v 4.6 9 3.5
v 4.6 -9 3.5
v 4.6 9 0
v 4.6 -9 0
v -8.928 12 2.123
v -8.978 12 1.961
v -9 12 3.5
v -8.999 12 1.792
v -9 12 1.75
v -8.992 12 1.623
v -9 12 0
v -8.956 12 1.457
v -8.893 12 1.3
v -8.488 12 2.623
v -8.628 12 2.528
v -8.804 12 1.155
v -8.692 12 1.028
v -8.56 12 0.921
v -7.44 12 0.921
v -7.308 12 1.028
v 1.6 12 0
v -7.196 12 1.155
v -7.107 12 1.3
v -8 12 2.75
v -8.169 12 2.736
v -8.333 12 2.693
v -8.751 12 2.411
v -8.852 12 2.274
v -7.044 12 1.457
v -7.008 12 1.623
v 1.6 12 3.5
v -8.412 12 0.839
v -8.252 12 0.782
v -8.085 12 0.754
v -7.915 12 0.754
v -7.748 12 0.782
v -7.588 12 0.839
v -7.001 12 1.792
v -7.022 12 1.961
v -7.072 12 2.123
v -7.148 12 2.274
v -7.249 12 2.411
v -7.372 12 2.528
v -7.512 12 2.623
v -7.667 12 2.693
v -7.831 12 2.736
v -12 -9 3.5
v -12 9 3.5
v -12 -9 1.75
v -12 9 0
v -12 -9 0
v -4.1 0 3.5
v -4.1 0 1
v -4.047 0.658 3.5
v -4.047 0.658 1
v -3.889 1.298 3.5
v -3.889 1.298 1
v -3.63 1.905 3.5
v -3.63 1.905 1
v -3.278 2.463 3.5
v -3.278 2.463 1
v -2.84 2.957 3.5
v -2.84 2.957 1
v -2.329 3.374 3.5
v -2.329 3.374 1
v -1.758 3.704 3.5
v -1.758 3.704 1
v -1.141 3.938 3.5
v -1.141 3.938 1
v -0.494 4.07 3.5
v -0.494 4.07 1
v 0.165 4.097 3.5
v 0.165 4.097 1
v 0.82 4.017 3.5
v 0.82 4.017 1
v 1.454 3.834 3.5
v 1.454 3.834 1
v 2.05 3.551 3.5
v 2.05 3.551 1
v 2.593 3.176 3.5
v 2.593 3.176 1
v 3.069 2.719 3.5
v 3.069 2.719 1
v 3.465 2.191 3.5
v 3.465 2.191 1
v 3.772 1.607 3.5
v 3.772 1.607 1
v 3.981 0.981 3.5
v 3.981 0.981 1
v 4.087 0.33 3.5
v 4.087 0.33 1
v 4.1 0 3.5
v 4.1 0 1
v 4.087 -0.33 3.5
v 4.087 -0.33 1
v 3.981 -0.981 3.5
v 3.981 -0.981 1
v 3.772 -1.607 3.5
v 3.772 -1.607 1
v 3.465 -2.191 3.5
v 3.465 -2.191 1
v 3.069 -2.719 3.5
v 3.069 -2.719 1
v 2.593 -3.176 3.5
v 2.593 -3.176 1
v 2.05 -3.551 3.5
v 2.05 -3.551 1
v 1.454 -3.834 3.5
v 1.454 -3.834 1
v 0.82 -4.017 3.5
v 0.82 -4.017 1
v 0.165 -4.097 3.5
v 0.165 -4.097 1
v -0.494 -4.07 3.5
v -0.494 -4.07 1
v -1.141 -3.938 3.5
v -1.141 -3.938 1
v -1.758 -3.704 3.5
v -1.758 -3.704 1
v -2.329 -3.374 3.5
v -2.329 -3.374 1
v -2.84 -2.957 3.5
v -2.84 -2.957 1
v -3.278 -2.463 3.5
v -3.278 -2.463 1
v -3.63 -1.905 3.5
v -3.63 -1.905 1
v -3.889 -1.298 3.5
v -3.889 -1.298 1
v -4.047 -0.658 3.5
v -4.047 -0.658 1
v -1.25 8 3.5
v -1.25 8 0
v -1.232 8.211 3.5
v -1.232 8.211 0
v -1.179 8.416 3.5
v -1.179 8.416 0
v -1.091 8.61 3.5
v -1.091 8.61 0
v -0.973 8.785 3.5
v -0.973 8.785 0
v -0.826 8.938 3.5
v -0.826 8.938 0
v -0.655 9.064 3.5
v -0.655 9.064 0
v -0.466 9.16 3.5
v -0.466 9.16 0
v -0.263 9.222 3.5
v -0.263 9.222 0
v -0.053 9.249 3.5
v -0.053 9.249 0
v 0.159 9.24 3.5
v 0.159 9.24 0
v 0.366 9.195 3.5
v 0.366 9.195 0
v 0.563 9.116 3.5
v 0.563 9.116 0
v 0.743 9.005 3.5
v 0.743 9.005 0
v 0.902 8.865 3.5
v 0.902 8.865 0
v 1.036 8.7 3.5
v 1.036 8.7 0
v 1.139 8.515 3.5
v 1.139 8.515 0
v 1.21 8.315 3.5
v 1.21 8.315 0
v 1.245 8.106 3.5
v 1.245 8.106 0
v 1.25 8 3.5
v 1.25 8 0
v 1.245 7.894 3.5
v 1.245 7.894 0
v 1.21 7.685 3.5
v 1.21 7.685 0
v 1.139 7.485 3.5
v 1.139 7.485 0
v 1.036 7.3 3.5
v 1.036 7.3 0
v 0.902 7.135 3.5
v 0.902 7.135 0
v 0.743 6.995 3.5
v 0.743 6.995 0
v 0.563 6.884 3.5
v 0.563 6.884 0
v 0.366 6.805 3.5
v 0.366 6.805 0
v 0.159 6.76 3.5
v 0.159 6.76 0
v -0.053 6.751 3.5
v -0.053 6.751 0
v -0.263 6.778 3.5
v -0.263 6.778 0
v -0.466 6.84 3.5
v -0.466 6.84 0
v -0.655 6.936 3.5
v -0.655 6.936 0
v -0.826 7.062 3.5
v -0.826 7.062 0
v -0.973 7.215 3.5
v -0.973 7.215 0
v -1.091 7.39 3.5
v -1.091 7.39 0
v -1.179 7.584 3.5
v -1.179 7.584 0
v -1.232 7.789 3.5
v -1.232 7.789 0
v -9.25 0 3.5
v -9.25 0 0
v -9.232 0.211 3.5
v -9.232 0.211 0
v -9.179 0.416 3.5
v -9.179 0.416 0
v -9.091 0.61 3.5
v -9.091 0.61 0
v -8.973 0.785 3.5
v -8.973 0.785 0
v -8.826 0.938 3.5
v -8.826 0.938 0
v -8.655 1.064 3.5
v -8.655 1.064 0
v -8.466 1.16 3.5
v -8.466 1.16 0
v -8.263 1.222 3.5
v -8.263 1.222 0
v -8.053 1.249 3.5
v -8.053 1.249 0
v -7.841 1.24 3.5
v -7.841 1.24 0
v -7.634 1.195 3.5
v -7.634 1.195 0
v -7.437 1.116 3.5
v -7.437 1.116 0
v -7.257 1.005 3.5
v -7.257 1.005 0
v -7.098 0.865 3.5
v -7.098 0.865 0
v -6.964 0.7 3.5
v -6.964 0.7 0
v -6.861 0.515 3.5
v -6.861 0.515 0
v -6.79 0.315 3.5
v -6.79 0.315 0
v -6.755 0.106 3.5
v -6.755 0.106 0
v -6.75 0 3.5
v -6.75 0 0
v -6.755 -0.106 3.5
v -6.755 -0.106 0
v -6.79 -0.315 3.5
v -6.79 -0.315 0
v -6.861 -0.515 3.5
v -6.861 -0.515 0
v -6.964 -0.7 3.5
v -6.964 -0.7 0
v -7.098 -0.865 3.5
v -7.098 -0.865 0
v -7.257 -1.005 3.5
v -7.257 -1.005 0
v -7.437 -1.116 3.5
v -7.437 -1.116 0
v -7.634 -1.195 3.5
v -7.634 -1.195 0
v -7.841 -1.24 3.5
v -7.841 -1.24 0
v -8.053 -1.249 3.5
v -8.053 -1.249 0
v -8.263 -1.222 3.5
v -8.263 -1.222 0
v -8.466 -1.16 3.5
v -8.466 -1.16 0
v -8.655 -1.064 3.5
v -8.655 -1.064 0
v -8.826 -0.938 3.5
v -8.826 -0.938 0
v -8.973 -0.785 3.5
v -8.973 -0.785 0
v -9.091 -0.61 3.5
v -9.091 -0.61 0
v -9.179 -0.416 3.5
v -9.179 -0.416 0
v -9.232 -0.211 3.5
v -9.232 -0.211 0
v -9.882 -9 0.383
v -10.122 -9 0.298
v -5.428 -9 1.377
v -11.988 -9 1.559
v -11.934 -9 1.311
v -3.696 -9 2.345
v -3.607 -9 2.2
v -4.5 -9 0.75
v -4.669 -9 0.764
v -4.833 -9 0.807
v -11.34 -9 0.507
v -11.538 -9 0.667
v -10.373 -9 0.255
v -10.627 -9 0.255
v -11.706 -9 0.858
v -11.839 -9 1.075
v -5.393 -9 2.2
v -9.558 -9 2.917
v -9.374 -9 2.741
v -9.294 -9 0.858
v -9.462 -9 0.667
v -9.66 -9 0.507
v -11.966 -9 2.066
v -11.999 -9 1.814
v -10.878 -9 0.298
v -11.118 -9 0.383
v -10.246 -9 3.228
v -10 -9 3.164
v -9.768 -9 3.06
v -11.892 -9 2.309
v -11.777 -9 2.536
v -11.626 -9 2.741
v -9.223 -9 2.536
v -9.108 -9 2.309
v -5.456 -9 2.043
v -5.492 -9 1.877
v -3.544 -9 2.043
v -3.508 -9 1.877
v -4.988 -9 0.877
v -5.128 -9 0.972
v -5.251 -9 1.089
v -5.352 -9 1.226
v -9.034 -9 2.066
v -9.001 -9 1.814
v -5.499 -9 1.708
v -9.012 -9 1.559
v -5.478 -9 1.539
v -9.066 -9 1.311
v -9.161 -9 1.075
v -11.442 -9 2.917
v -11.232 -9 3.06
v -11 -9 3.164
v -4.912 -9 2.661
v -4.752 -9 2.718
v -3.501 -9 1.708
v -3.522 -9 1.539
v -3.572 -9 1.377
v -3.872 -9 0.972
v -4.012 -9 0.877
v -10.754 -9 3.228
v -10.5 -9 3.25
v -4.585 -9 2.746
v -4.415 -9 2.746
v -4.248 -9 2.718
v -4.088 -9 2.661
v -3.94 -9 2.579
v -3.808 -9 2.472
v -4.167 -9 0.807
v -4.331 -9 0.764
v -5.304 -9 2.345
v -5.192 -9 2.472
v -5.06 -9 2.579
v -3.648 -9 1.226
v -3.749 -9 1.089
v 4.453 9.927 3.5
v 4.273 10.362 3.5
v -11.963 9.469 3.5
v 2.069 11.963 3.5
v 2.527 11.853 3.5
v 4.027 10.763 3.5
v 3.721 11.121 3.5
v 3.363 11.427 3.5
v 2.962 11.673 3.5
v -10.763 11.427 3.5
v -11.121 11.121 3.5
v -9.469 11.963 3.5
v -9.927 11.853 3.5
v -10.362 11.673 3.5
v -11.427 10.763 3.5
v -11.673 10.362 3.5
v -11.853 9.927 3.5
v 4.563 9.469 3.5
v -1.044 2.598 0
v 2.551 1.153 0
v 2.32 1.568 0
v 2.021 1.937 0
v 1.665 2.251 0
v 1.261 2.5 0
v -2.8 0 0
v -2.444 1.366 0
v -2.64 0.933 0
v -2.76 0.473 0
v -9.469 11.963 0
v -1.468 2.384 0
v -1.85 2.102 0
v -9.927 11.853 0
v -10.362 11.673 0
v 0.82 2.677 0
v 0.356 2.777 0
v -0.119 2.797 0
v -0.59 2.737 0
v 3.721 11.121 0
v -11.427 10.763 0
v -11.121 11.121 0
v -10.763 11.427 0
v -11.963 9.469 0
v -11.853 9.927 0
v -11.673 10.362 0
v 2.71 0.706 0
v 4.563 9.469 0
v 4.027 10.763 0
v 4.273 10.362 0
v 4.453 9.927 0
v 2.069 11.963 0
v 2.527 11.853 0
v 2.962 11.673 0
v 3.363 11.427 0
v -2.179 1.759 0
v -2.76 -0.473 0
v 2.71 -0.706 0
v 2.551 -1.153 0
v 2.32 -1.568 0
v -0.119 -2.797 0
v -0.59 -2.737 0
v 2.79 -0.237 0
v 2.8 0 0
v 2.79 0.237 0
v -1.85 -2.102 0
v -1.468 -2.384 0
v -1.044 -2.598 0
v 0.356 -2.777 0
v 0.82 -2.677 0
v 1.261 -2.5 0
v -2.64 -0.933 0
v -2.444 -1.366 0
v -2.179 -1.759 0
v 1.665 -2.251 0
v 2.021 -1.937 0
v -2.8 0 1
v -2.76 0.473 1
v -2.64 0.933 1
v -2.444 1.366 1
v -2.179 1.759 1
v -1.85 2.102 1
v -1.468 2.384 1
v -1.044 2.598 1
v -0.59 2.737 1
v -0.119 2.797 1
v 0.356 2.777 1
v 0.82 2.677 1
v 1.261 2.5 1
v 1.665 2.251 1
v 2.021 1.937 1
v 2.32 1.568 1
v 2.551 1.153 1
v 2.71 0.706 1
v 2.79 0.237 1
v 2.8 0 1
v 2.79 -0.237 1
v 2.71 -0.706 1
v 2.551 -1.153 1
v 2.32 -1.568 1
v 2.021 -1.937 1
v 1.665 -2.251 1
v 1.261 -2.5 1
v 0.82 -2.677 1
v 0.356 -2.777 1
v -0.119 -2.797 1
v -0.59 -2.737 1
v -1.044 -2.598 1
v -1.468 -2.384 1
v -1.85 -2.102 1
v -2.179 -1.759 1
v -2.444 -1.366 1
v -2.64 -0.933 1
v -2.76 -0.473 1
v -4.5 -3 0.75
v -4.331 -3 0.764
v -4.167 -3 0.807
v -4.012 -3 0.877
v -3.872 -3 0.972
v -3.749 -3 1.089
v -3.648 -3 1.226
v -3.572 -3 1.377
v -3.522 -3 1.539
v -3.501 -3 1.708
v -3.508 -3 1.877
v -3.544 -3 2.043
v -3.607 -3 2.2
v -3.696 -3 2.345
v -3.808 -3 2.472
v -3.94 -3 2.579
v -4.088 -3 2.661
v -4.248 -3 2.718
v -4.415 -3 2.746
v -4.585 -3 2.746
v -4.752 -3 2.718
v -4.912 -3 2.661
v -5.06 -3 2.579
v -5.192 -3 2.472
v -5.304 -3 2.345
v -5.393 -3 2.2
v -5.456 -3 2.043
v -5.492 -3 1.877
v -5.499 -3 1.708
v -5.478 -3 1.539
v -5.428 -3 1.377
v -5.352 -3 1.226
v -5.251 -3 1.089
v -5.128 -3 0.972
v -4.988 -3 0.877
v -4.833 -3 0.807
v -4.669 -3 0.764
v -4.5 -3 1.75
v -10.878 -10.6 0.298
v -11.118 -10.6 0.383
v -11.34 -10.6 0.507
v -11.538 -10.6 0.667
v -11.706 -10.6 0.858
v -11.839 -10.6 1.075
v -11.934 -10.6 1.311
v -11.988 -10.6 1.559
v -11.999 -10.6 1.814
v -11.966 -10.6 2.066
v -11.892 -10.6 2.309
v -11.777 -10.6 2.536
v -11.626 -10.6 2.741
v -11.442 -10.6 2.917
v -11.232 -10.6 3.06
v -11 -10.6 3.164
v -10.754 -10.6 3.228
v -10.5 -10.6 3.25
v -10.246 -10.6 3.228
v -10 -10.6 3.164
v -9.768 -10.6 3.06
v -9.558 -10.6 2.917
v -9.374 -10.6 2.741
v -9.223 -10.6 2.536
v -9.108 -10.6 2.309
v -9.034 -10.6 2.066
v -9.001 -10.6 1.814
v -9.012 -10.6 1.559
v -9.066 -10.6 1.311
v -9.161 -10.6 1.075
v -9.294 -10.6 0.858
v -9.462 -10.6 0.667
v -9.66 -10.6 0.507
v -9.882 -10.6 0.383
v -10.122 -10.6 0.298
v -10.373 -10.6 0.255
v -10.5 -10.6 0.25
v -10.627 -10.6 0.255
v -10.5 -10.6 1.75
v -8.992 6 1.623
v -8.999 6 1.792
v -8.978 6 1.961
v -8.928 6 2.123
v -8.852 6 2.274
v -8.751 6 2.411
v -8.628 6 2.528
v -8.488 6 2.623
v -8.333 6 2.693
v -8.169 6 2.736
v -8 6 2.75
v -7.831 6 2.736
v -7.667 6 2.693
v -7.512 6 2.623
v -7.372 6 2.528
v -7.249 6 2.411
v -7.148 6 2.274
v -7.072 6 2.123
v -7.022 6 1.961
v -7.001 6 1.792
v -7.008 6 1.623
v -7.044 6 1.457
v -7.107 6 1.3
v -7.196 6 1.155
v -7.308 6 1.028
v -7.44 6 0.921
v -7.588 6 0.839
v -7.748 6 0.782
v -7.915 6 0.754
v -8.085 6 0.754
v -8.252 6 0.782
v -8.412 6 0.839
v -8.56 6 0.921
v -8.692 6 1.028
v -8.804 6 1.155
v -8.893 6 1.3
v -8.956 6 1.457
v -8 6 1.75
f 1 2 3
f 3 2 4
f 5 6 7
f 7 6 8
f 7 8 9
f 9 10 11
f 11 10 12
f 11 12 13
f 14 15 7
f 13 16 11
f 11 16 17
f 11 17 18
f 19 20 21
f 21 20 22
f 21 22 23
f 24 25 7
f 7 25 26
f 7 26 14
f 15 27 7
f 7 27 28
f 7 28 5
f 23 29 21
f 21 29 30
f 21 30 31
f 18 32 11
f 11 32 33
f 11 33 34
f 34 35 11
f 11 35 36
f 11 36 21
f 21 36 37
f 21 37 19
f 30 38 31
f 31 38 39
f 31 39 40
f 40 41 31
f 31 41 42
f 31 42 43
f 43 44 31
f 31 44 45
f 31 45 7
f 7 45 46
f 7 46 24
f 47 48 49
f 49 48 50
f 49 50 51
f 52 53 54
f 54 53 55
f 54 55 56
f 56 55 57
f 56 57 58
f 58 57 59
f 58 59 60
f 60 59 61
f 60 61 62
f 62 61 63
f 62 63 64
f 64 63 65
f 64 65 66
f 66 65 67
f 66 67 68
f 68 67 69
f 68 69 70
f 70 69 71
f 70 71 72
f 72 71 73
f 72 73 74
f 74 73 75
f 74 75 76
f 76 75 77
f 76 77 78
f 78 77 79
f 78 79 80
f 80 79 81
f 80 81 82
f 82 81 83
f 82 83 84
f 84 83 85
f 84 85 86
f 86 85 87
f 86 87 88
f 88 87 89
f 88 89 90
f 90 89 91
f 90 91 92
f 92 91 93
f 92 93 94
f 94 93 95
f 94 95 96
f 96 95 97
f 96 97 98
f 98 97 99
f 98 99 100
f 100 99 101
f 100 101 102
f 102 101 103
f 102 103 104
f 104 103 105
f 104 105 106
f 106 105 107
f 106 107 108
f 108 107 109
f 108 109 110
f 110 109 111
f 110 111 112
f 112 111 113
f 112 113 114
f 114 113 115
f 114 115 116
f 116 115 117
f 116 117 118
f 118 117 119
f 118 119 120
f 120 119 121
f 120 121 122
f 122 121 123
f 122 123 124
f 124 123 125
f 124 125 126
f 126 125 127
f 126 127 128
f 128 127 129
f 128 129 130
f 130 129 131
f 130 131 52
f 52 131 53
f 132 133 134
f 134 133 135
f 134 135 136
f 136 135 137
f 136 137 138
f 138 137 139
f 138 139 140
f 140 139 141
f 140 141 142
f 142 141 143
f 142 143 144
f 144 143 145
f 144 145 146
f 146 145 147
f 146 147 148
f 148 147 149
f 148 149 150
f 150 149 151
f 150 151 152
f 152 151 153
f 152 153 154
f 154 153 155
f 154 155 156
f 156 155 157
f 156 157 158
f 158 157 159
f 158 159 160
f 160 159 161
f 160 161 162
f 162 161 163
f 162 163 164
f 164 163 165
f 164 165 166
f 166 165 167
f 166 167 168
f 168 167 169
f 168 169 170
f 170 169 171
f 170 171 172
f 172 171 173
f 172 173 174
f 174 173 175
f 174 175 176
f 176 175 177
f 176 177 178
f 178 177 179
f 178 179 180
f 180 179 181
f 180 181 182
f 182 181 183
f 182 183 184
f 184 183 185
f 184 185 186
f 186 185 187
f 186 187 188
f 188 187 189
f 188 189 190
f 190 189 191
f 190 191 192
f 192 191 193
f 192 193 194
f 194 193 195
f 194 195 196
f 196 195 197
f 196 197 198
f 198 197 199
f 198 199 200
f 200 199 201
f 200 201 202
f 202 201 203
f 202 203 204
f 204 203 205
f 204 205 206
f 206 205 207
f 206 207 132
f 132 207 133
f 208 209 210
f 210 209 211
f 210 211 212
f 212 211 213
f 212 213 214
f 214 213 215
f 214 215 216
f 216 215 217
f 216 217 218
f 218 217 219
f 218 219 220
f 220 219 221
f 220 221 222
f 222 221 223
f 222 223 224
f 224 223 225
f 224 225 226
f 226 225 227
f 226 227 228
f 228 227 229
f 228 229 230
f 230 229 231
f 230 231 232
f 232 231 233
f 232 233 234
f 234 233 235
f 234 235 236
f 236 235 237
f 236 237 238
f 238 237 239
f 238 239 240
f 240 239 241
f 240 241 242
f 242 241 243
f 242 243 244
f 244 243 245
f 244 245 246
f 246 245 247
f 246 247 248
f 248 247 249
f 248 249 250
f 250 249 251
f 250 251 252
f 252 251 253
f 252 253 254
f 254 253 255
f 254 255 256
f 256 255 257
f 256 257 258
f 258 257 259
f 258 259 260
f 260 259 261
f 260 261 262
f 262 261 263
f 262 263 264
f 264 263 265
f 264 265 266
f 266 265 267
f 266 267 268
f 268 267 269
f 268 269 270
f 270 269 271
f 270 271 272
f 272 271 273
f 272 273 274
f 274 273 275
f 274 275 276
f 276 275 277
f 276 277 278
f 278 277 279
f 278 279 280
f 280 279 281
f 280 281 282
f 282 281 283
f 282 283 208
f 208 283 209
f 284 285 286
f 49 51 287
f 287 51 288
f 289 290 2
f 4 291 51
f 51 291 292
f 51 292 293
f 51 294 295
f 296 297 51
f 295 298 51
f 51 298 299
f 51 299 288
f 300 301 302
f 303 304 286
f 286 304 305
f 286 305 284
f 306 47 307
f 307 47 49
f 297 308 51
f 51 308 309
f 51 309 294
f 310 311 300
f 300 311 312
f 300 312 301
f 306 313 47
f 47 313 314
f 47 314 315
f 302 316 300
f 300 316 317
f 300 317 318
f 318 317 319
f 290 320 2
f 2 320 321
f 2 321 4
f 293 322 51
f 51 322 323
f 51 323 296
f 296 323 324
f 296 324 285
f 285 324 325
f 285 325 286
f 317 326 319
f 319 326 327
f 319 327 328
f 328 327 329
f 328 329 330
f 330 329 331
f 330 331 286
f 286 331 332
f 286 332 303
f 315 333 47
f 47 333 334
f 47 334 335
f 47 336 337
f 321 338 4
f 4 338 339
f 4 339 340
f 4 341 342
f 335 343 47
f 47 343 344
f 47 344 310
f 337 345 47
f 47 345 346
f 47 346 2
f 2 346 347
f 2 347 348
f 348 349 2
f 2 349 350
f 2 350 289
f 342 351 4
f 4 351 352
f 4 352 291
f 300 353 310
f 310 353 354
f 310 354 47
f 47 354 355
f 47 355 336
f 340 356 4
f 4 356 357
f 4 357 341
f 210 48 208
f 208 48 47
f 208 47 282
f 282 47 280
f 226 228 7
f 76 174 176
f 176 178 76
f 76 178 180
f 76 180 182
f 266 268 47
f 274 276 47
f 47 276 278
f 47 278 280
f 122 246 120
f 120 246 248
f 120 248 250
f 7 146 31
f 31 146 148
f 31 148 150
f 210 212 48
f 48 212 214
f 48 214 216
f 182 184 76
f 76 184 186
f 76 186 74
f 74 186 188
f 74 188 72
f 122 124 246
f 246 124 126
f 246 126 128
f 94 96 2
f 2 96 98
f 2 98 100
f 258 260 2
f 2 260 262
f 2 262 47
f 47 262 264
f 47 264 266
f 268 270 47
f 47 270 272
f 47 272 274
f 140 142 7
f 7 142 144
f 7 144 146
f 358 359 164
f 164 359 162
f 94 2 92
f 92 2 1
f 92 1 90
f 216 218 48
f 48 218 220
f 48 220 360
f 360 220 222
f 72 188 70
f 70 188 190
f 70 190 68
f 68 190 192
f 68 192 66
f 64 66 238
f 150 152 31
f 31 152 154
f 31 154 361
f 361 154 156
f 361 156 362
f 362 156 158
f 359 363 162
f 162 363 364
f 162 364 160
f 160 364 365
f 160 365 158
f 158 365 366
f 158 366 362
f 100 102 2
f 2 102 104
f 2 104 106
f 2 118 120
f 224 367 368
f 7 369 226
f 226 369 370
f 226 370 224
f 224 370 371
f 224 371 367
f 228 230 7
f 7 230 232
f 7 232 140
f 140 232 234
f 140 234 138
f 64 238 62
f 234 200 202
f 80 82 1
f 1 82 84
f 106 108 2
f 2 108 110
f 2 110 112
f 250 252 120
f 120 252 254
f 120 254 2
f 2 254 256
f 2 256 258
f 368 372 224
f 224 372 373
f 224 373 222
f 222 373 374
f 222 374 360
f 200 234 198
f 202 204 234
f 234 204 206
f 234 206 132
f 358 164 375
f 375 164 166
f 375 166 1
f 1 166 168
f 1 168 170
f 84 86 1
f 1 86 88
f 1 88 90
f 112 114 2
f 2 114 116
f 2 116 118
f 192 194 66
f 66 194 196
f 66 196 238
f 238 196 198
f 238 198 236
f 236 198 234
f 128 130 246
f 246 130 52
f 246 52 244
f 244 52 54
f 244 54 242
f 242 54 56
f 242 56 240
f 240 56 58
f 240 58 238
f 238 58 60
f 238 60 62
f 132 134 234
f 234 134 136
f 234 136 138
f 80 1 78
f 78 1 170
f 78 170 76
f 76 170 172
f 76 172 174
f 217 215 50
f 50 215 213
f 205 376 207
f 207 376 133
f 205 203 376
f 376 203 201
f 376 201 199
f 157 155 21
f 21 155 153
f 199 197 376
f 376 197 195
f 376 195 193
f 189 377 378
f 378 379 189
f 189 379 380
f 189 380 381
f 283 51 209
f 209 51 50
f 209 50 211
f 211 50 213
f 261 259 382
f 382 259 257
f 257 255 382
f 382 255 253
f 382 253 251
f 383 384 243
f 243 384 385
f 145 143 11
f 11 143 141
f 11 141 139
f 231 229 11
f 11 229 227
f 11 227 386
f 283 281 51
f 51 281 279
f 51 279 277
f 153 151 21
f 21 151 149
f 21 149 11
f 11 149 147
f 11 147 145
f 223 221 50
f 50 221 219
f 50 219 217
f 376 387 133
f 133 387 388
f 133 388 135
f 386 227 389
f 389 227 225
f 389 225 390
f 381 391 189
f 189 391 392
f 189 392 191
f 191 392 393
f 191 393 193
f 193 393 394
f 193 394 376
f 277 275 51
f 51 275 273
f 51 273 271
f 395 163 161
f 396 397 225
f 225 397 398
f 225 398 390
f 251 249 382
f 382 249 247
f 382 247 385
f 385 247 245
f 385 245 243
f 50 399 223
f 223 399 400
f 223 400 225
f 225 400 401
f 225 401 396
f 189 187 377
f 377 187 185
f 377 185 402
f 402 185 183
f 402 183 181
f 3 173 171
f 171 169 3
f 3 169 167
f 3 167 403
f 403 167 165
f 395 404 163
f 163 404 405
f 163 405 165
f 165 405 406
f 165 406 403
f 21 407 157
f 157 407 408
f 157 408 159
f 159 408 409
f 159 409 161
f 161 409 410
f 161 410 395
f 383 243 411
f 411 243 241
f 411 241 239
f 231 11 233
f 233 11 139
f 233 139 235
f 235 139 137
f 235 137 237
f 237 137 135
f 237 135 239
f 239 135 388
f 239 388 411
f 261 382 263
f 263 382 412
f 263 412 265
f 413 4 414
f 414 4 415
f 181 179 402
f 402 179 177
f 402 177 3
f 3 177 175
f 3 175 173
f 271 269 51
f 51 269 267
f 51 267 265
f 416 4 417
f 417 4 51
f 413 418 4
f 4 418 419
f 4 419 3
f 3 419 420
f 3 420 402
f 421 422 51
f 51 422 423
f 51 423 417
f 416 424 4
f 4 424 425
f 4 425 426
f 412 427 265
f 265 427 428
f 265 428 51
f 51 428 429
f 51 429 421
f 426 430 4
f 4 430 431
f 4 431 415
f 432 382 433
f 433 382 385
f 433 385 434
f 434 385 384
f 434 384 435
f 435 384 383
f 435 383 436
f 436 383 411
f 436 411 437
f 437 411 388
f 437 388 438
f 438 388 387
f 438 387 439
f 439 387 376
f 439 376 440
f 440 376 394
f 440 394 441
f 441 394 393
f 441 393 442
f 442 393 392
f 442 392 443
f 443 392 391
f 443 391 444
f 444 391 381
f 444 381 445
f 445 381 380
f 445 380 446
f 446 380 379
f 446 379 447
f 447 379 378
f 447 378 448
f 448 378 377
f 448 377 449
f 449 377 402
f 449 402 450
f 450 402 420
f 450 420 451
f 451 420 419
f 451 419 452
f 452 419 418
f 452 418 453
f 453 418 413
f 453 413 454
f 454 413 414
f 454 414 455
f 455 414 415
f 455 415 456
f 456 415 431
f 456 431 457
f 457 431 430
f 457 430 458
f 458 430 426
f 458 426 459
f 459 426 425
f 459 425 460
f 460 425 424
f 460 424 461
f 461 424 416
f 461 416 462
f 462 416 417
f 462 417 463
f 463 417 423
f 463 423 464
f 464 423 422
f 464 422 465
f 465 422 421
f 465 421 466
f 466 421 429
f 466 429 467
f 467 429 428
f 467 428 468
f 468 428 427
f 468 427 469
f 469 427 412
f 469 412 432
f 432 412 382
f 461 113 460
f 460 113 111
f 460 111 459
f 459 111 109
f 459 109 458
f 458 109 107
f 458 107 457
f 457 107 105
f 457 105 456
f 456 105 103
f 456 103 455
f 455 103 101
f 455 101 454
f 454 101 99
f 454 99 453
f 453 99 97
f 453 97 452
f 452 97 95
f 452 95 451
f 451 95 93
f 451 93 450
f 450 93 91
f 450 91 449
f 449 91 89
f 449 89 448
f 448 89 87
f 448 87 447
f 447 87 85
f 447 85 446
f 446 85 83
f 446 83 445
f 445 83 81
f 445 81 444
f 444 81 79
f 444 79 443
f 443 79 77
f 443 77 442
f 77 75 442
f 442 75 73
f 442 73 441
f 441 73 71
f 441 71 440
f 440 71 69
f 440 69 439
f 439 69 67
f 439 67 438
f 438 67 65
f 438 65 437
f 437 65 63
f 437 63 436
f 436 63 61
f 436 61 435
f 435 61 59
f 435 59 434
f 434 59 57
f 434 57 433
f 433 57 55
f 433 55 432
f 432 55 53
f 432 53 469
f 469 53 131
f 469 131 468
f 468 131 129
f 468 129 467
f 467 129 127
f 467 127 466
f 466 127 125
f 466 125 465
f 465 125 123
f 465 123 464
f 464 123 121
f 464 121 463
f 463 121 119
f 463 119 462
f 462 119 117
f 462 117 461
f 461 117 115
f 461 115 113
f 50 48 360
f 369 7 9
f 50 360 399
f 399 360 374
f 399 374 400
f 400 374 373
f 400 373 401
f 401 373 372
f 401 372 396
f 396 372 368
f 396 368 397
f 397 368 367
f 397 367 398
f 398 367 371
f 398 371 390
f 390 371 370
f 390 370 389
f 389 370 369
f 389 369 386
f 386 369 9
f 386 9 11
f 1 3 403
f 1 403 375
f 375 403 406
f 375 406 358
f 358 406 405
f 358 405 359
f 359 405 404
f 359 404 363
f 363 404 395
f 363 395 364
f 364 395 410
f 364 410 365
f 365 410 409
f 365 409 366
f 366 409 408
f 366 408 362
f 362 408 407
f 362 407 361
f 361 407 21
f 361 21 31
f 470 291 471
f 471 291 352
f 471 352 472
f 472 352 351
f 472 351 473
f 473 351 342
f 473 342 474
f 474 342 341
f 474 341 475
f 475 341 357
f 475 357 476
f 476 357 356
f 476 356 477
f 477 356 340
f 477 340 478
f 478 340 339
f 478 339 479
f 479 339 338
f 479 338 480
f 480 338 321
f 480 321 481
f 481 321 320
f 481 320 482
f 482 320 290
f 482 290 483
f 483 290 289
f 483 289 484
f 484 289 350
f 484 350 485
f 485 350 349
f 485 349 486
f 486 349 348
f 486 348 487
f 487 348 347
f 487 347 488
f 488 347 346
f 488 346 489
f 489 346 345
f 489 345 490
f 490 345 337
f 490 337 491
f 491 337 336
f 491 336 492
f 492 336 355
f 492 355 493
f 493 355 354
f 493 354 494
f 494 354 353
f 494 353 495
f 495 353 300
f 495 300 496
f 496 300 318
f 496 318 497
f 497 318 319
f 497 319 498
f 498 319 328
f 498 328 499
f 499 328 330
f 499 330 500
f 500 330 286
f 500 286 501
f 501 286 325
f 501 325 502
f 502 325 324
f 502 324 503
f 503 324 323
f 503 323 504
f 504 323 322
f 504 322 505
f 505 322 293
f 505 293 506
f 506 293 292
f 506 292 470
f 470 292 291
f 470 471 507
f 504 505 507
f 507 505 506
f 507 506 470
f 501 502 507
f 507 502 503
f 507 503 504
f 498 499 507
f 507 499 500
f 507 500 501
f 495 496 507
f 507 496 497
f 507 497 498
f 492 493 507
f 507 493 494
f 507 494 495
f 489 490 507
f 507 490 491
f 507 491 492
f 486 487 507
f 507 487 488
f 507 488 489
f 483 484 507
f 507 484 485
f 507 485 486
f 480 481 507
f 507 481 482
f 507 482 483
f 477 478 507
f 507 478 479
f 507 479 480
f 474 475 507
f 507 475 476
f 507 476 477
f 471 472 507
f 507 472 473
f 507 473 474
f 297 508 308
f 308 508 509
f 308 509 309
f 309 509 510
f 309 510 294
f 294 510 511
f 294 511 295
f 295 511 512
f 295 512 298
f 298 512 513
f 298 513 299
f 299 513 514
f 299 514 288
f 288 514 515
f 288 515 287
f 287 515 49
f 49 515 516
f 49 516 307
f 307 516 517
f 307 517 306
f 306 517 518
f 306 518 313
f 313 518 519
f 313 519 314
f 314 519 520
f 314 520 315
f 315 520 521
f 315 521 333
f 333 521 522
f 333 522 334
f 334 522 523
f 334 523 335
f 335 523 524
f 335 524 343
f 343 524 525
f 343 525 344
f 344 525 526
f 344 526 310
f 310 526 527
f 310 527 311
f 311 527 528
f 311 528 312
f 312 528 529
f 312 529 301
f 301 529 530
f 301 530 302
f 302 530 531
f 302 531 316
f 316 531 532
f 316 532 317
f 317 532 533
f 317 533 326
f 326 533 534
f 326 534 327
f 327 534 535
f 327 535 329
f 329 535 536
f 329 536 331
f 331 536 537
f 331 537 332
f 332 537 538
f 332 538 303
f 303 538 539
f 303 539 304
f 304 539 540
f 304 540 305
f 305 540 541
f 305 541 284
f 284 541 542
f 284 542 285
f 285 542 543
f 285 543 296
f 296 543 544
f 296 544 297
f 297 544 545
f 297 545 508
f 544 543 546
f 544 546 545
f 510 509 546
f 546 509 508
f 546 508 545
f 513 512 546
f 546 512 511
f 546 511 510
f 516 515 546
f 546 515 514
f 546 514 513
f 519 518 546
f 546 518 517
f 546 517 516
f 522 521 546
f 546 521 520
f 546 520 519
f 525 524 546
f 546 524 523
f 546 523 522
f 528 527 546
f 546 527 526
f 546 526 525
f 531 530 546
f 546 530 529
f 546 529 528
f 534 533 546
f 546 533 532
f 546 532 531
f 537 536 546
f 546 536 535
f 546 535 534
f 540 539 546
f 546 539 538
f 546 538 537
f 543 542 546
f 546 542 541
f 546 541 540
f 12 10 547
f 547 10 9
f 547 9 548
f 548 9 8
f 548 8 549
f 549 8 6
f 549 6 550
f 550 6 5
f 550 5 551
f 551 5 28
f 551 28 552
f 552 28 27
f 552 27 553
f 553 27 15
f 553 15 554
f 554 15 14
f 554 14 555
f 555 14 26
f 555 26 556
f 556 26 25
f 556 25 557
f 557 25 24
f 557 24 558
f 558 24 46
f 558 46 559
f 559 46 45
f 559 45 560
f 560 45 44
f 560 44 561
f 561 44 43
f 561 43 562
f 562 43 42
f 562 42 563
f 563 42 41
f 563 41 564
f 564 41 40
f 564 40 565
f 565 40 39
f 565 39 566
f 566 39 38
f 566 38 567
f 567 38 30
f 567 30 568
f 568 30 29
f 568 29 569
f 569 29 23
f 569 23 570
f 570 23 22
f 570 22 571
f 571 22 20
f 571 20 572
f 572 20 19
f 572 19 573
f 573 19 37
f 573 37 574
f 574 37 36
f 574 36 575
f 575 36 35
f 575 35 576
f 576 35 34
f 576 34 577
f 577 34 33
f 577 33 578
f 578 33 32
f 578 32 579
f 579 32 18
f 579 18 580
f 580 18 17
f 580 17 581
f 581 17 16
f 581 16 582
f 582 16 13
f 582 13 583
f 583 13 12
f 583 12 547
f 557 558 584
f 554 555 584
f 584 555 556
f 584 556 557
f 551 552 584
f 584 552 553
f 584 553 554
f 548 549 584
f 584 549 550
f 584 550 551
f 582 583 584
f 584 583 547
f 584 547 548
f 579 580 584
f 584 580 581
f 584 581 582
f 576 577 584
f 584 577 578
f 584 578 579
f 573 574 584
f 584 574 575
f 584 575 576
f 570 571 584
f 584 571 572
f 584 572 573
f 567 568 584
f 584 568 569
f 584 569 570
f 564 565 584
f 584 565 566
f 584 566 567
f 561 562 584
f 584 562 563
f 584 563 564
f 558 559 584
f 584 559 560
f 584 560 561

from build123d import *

# Parameters (mm, degrees)
SKETCH_1_W          = 16.6
SKETCH_1_H          = 21
SKETCH_1_R          = 1.25
SKETCH_1_R_2        = 4.1
EXTRUDE_1_DEPTH     = 3.5
SKETCH_1_3_R        = 4.1
SKETCH_1_3_R_2      = 2.8
EXTRUDE_2_DEPTH     = 1
FILLET_1_R          = 3
FILLET_2_R          = 3
SKETCH_2_R          = 1
CUT_EXTRUDE_1_DEPTH = 6
SKETCH_2_3_R        = 1.5
EXTRUDE_3_DEPTH     = 1.6
SKETCH_3_R          = 1
CUT_EXTRUDE_2_DEPTH = 6


with BuildPart() as part:
    # 草图1 → 凸台-拉伸1 (new body)
    with BuildSketch(Plane.XY):
        with Locations((-3.7, 1.5)):
            Rectangle(SKETCH_1_W, SKETCH_1_H)
        with Locations((-8, 0)):
            Circle(SKETCH_1_R, mode=Mode.SUBTRACT)
        Circle(SKETCH_1_R_2, mode=Mode.SUBTRACT)
        with Locations((0, 8)):
            Circle(SKETCH_1_R, mode=Mode.SUBTRACT)
    extrude(amount=EXTRUDE_1_DEPTH)

    # 草图1<3> → 凸台-拉伸2 (add)
    with BuildSketch(Plane.XY):
        Circle(SKETCH_1_3_R)
        Circle(SKETCH_1_3_R_2, mode=Mode.SUBTRACT)
    extrude(amount=EXTRUDE_2_DEPTH)

    # 圆角1
    fillet_1_edges = [part.edges().sort_by_distance(p)[0] for p in [
        (-12, 12, 1.75),
    ]]
    fillet(fillet_1_edges, radius=FILLET_1_R)

    # 圆角2
    fillet_2_edges = [part.edges().sort_by_distance(p)[0] for p in [
        (4.6, 12, 1.75),
    ]]
    fillet(fillet_2_edges, radius=FILLET_2_R)

    # 草图2 → 切除-拉伸1 (cut)
    with BuildSketch(Plane.XZ.offset(9)):
        with Locations((-4.5, 1.75)):
            Circle(SKETCH_2_R)
    extrude(amount=-CUT_EXTRUDE_1_DEPTH, mode=Mode.SUBTRACT)

    # 草图2<3> → 凸台-拉伸3 (add)
    with BuildSketch(Plane.XZ.offset(9)):
        with Locations((-10.5, 1.75)):
            Circle(SKETCH_2_3_R)
    extrude(amount=EXTRUDE_3_DEPTH)

    # 草图3 → 切除-拉伸2 (cut)
    with BuildSketch(Plane(origin=(0, 12, 0), x_dir=(1, 0, 0), z_dir=(0, 1, 0))):
        with Locations((-8, -1.75)):
            Circle(SKETCH_3_R)
    extrude(amount=-CUT_EXTRUDE_2_DEPTH, mode=Mode.SUBTRACT)


solid = part.part
